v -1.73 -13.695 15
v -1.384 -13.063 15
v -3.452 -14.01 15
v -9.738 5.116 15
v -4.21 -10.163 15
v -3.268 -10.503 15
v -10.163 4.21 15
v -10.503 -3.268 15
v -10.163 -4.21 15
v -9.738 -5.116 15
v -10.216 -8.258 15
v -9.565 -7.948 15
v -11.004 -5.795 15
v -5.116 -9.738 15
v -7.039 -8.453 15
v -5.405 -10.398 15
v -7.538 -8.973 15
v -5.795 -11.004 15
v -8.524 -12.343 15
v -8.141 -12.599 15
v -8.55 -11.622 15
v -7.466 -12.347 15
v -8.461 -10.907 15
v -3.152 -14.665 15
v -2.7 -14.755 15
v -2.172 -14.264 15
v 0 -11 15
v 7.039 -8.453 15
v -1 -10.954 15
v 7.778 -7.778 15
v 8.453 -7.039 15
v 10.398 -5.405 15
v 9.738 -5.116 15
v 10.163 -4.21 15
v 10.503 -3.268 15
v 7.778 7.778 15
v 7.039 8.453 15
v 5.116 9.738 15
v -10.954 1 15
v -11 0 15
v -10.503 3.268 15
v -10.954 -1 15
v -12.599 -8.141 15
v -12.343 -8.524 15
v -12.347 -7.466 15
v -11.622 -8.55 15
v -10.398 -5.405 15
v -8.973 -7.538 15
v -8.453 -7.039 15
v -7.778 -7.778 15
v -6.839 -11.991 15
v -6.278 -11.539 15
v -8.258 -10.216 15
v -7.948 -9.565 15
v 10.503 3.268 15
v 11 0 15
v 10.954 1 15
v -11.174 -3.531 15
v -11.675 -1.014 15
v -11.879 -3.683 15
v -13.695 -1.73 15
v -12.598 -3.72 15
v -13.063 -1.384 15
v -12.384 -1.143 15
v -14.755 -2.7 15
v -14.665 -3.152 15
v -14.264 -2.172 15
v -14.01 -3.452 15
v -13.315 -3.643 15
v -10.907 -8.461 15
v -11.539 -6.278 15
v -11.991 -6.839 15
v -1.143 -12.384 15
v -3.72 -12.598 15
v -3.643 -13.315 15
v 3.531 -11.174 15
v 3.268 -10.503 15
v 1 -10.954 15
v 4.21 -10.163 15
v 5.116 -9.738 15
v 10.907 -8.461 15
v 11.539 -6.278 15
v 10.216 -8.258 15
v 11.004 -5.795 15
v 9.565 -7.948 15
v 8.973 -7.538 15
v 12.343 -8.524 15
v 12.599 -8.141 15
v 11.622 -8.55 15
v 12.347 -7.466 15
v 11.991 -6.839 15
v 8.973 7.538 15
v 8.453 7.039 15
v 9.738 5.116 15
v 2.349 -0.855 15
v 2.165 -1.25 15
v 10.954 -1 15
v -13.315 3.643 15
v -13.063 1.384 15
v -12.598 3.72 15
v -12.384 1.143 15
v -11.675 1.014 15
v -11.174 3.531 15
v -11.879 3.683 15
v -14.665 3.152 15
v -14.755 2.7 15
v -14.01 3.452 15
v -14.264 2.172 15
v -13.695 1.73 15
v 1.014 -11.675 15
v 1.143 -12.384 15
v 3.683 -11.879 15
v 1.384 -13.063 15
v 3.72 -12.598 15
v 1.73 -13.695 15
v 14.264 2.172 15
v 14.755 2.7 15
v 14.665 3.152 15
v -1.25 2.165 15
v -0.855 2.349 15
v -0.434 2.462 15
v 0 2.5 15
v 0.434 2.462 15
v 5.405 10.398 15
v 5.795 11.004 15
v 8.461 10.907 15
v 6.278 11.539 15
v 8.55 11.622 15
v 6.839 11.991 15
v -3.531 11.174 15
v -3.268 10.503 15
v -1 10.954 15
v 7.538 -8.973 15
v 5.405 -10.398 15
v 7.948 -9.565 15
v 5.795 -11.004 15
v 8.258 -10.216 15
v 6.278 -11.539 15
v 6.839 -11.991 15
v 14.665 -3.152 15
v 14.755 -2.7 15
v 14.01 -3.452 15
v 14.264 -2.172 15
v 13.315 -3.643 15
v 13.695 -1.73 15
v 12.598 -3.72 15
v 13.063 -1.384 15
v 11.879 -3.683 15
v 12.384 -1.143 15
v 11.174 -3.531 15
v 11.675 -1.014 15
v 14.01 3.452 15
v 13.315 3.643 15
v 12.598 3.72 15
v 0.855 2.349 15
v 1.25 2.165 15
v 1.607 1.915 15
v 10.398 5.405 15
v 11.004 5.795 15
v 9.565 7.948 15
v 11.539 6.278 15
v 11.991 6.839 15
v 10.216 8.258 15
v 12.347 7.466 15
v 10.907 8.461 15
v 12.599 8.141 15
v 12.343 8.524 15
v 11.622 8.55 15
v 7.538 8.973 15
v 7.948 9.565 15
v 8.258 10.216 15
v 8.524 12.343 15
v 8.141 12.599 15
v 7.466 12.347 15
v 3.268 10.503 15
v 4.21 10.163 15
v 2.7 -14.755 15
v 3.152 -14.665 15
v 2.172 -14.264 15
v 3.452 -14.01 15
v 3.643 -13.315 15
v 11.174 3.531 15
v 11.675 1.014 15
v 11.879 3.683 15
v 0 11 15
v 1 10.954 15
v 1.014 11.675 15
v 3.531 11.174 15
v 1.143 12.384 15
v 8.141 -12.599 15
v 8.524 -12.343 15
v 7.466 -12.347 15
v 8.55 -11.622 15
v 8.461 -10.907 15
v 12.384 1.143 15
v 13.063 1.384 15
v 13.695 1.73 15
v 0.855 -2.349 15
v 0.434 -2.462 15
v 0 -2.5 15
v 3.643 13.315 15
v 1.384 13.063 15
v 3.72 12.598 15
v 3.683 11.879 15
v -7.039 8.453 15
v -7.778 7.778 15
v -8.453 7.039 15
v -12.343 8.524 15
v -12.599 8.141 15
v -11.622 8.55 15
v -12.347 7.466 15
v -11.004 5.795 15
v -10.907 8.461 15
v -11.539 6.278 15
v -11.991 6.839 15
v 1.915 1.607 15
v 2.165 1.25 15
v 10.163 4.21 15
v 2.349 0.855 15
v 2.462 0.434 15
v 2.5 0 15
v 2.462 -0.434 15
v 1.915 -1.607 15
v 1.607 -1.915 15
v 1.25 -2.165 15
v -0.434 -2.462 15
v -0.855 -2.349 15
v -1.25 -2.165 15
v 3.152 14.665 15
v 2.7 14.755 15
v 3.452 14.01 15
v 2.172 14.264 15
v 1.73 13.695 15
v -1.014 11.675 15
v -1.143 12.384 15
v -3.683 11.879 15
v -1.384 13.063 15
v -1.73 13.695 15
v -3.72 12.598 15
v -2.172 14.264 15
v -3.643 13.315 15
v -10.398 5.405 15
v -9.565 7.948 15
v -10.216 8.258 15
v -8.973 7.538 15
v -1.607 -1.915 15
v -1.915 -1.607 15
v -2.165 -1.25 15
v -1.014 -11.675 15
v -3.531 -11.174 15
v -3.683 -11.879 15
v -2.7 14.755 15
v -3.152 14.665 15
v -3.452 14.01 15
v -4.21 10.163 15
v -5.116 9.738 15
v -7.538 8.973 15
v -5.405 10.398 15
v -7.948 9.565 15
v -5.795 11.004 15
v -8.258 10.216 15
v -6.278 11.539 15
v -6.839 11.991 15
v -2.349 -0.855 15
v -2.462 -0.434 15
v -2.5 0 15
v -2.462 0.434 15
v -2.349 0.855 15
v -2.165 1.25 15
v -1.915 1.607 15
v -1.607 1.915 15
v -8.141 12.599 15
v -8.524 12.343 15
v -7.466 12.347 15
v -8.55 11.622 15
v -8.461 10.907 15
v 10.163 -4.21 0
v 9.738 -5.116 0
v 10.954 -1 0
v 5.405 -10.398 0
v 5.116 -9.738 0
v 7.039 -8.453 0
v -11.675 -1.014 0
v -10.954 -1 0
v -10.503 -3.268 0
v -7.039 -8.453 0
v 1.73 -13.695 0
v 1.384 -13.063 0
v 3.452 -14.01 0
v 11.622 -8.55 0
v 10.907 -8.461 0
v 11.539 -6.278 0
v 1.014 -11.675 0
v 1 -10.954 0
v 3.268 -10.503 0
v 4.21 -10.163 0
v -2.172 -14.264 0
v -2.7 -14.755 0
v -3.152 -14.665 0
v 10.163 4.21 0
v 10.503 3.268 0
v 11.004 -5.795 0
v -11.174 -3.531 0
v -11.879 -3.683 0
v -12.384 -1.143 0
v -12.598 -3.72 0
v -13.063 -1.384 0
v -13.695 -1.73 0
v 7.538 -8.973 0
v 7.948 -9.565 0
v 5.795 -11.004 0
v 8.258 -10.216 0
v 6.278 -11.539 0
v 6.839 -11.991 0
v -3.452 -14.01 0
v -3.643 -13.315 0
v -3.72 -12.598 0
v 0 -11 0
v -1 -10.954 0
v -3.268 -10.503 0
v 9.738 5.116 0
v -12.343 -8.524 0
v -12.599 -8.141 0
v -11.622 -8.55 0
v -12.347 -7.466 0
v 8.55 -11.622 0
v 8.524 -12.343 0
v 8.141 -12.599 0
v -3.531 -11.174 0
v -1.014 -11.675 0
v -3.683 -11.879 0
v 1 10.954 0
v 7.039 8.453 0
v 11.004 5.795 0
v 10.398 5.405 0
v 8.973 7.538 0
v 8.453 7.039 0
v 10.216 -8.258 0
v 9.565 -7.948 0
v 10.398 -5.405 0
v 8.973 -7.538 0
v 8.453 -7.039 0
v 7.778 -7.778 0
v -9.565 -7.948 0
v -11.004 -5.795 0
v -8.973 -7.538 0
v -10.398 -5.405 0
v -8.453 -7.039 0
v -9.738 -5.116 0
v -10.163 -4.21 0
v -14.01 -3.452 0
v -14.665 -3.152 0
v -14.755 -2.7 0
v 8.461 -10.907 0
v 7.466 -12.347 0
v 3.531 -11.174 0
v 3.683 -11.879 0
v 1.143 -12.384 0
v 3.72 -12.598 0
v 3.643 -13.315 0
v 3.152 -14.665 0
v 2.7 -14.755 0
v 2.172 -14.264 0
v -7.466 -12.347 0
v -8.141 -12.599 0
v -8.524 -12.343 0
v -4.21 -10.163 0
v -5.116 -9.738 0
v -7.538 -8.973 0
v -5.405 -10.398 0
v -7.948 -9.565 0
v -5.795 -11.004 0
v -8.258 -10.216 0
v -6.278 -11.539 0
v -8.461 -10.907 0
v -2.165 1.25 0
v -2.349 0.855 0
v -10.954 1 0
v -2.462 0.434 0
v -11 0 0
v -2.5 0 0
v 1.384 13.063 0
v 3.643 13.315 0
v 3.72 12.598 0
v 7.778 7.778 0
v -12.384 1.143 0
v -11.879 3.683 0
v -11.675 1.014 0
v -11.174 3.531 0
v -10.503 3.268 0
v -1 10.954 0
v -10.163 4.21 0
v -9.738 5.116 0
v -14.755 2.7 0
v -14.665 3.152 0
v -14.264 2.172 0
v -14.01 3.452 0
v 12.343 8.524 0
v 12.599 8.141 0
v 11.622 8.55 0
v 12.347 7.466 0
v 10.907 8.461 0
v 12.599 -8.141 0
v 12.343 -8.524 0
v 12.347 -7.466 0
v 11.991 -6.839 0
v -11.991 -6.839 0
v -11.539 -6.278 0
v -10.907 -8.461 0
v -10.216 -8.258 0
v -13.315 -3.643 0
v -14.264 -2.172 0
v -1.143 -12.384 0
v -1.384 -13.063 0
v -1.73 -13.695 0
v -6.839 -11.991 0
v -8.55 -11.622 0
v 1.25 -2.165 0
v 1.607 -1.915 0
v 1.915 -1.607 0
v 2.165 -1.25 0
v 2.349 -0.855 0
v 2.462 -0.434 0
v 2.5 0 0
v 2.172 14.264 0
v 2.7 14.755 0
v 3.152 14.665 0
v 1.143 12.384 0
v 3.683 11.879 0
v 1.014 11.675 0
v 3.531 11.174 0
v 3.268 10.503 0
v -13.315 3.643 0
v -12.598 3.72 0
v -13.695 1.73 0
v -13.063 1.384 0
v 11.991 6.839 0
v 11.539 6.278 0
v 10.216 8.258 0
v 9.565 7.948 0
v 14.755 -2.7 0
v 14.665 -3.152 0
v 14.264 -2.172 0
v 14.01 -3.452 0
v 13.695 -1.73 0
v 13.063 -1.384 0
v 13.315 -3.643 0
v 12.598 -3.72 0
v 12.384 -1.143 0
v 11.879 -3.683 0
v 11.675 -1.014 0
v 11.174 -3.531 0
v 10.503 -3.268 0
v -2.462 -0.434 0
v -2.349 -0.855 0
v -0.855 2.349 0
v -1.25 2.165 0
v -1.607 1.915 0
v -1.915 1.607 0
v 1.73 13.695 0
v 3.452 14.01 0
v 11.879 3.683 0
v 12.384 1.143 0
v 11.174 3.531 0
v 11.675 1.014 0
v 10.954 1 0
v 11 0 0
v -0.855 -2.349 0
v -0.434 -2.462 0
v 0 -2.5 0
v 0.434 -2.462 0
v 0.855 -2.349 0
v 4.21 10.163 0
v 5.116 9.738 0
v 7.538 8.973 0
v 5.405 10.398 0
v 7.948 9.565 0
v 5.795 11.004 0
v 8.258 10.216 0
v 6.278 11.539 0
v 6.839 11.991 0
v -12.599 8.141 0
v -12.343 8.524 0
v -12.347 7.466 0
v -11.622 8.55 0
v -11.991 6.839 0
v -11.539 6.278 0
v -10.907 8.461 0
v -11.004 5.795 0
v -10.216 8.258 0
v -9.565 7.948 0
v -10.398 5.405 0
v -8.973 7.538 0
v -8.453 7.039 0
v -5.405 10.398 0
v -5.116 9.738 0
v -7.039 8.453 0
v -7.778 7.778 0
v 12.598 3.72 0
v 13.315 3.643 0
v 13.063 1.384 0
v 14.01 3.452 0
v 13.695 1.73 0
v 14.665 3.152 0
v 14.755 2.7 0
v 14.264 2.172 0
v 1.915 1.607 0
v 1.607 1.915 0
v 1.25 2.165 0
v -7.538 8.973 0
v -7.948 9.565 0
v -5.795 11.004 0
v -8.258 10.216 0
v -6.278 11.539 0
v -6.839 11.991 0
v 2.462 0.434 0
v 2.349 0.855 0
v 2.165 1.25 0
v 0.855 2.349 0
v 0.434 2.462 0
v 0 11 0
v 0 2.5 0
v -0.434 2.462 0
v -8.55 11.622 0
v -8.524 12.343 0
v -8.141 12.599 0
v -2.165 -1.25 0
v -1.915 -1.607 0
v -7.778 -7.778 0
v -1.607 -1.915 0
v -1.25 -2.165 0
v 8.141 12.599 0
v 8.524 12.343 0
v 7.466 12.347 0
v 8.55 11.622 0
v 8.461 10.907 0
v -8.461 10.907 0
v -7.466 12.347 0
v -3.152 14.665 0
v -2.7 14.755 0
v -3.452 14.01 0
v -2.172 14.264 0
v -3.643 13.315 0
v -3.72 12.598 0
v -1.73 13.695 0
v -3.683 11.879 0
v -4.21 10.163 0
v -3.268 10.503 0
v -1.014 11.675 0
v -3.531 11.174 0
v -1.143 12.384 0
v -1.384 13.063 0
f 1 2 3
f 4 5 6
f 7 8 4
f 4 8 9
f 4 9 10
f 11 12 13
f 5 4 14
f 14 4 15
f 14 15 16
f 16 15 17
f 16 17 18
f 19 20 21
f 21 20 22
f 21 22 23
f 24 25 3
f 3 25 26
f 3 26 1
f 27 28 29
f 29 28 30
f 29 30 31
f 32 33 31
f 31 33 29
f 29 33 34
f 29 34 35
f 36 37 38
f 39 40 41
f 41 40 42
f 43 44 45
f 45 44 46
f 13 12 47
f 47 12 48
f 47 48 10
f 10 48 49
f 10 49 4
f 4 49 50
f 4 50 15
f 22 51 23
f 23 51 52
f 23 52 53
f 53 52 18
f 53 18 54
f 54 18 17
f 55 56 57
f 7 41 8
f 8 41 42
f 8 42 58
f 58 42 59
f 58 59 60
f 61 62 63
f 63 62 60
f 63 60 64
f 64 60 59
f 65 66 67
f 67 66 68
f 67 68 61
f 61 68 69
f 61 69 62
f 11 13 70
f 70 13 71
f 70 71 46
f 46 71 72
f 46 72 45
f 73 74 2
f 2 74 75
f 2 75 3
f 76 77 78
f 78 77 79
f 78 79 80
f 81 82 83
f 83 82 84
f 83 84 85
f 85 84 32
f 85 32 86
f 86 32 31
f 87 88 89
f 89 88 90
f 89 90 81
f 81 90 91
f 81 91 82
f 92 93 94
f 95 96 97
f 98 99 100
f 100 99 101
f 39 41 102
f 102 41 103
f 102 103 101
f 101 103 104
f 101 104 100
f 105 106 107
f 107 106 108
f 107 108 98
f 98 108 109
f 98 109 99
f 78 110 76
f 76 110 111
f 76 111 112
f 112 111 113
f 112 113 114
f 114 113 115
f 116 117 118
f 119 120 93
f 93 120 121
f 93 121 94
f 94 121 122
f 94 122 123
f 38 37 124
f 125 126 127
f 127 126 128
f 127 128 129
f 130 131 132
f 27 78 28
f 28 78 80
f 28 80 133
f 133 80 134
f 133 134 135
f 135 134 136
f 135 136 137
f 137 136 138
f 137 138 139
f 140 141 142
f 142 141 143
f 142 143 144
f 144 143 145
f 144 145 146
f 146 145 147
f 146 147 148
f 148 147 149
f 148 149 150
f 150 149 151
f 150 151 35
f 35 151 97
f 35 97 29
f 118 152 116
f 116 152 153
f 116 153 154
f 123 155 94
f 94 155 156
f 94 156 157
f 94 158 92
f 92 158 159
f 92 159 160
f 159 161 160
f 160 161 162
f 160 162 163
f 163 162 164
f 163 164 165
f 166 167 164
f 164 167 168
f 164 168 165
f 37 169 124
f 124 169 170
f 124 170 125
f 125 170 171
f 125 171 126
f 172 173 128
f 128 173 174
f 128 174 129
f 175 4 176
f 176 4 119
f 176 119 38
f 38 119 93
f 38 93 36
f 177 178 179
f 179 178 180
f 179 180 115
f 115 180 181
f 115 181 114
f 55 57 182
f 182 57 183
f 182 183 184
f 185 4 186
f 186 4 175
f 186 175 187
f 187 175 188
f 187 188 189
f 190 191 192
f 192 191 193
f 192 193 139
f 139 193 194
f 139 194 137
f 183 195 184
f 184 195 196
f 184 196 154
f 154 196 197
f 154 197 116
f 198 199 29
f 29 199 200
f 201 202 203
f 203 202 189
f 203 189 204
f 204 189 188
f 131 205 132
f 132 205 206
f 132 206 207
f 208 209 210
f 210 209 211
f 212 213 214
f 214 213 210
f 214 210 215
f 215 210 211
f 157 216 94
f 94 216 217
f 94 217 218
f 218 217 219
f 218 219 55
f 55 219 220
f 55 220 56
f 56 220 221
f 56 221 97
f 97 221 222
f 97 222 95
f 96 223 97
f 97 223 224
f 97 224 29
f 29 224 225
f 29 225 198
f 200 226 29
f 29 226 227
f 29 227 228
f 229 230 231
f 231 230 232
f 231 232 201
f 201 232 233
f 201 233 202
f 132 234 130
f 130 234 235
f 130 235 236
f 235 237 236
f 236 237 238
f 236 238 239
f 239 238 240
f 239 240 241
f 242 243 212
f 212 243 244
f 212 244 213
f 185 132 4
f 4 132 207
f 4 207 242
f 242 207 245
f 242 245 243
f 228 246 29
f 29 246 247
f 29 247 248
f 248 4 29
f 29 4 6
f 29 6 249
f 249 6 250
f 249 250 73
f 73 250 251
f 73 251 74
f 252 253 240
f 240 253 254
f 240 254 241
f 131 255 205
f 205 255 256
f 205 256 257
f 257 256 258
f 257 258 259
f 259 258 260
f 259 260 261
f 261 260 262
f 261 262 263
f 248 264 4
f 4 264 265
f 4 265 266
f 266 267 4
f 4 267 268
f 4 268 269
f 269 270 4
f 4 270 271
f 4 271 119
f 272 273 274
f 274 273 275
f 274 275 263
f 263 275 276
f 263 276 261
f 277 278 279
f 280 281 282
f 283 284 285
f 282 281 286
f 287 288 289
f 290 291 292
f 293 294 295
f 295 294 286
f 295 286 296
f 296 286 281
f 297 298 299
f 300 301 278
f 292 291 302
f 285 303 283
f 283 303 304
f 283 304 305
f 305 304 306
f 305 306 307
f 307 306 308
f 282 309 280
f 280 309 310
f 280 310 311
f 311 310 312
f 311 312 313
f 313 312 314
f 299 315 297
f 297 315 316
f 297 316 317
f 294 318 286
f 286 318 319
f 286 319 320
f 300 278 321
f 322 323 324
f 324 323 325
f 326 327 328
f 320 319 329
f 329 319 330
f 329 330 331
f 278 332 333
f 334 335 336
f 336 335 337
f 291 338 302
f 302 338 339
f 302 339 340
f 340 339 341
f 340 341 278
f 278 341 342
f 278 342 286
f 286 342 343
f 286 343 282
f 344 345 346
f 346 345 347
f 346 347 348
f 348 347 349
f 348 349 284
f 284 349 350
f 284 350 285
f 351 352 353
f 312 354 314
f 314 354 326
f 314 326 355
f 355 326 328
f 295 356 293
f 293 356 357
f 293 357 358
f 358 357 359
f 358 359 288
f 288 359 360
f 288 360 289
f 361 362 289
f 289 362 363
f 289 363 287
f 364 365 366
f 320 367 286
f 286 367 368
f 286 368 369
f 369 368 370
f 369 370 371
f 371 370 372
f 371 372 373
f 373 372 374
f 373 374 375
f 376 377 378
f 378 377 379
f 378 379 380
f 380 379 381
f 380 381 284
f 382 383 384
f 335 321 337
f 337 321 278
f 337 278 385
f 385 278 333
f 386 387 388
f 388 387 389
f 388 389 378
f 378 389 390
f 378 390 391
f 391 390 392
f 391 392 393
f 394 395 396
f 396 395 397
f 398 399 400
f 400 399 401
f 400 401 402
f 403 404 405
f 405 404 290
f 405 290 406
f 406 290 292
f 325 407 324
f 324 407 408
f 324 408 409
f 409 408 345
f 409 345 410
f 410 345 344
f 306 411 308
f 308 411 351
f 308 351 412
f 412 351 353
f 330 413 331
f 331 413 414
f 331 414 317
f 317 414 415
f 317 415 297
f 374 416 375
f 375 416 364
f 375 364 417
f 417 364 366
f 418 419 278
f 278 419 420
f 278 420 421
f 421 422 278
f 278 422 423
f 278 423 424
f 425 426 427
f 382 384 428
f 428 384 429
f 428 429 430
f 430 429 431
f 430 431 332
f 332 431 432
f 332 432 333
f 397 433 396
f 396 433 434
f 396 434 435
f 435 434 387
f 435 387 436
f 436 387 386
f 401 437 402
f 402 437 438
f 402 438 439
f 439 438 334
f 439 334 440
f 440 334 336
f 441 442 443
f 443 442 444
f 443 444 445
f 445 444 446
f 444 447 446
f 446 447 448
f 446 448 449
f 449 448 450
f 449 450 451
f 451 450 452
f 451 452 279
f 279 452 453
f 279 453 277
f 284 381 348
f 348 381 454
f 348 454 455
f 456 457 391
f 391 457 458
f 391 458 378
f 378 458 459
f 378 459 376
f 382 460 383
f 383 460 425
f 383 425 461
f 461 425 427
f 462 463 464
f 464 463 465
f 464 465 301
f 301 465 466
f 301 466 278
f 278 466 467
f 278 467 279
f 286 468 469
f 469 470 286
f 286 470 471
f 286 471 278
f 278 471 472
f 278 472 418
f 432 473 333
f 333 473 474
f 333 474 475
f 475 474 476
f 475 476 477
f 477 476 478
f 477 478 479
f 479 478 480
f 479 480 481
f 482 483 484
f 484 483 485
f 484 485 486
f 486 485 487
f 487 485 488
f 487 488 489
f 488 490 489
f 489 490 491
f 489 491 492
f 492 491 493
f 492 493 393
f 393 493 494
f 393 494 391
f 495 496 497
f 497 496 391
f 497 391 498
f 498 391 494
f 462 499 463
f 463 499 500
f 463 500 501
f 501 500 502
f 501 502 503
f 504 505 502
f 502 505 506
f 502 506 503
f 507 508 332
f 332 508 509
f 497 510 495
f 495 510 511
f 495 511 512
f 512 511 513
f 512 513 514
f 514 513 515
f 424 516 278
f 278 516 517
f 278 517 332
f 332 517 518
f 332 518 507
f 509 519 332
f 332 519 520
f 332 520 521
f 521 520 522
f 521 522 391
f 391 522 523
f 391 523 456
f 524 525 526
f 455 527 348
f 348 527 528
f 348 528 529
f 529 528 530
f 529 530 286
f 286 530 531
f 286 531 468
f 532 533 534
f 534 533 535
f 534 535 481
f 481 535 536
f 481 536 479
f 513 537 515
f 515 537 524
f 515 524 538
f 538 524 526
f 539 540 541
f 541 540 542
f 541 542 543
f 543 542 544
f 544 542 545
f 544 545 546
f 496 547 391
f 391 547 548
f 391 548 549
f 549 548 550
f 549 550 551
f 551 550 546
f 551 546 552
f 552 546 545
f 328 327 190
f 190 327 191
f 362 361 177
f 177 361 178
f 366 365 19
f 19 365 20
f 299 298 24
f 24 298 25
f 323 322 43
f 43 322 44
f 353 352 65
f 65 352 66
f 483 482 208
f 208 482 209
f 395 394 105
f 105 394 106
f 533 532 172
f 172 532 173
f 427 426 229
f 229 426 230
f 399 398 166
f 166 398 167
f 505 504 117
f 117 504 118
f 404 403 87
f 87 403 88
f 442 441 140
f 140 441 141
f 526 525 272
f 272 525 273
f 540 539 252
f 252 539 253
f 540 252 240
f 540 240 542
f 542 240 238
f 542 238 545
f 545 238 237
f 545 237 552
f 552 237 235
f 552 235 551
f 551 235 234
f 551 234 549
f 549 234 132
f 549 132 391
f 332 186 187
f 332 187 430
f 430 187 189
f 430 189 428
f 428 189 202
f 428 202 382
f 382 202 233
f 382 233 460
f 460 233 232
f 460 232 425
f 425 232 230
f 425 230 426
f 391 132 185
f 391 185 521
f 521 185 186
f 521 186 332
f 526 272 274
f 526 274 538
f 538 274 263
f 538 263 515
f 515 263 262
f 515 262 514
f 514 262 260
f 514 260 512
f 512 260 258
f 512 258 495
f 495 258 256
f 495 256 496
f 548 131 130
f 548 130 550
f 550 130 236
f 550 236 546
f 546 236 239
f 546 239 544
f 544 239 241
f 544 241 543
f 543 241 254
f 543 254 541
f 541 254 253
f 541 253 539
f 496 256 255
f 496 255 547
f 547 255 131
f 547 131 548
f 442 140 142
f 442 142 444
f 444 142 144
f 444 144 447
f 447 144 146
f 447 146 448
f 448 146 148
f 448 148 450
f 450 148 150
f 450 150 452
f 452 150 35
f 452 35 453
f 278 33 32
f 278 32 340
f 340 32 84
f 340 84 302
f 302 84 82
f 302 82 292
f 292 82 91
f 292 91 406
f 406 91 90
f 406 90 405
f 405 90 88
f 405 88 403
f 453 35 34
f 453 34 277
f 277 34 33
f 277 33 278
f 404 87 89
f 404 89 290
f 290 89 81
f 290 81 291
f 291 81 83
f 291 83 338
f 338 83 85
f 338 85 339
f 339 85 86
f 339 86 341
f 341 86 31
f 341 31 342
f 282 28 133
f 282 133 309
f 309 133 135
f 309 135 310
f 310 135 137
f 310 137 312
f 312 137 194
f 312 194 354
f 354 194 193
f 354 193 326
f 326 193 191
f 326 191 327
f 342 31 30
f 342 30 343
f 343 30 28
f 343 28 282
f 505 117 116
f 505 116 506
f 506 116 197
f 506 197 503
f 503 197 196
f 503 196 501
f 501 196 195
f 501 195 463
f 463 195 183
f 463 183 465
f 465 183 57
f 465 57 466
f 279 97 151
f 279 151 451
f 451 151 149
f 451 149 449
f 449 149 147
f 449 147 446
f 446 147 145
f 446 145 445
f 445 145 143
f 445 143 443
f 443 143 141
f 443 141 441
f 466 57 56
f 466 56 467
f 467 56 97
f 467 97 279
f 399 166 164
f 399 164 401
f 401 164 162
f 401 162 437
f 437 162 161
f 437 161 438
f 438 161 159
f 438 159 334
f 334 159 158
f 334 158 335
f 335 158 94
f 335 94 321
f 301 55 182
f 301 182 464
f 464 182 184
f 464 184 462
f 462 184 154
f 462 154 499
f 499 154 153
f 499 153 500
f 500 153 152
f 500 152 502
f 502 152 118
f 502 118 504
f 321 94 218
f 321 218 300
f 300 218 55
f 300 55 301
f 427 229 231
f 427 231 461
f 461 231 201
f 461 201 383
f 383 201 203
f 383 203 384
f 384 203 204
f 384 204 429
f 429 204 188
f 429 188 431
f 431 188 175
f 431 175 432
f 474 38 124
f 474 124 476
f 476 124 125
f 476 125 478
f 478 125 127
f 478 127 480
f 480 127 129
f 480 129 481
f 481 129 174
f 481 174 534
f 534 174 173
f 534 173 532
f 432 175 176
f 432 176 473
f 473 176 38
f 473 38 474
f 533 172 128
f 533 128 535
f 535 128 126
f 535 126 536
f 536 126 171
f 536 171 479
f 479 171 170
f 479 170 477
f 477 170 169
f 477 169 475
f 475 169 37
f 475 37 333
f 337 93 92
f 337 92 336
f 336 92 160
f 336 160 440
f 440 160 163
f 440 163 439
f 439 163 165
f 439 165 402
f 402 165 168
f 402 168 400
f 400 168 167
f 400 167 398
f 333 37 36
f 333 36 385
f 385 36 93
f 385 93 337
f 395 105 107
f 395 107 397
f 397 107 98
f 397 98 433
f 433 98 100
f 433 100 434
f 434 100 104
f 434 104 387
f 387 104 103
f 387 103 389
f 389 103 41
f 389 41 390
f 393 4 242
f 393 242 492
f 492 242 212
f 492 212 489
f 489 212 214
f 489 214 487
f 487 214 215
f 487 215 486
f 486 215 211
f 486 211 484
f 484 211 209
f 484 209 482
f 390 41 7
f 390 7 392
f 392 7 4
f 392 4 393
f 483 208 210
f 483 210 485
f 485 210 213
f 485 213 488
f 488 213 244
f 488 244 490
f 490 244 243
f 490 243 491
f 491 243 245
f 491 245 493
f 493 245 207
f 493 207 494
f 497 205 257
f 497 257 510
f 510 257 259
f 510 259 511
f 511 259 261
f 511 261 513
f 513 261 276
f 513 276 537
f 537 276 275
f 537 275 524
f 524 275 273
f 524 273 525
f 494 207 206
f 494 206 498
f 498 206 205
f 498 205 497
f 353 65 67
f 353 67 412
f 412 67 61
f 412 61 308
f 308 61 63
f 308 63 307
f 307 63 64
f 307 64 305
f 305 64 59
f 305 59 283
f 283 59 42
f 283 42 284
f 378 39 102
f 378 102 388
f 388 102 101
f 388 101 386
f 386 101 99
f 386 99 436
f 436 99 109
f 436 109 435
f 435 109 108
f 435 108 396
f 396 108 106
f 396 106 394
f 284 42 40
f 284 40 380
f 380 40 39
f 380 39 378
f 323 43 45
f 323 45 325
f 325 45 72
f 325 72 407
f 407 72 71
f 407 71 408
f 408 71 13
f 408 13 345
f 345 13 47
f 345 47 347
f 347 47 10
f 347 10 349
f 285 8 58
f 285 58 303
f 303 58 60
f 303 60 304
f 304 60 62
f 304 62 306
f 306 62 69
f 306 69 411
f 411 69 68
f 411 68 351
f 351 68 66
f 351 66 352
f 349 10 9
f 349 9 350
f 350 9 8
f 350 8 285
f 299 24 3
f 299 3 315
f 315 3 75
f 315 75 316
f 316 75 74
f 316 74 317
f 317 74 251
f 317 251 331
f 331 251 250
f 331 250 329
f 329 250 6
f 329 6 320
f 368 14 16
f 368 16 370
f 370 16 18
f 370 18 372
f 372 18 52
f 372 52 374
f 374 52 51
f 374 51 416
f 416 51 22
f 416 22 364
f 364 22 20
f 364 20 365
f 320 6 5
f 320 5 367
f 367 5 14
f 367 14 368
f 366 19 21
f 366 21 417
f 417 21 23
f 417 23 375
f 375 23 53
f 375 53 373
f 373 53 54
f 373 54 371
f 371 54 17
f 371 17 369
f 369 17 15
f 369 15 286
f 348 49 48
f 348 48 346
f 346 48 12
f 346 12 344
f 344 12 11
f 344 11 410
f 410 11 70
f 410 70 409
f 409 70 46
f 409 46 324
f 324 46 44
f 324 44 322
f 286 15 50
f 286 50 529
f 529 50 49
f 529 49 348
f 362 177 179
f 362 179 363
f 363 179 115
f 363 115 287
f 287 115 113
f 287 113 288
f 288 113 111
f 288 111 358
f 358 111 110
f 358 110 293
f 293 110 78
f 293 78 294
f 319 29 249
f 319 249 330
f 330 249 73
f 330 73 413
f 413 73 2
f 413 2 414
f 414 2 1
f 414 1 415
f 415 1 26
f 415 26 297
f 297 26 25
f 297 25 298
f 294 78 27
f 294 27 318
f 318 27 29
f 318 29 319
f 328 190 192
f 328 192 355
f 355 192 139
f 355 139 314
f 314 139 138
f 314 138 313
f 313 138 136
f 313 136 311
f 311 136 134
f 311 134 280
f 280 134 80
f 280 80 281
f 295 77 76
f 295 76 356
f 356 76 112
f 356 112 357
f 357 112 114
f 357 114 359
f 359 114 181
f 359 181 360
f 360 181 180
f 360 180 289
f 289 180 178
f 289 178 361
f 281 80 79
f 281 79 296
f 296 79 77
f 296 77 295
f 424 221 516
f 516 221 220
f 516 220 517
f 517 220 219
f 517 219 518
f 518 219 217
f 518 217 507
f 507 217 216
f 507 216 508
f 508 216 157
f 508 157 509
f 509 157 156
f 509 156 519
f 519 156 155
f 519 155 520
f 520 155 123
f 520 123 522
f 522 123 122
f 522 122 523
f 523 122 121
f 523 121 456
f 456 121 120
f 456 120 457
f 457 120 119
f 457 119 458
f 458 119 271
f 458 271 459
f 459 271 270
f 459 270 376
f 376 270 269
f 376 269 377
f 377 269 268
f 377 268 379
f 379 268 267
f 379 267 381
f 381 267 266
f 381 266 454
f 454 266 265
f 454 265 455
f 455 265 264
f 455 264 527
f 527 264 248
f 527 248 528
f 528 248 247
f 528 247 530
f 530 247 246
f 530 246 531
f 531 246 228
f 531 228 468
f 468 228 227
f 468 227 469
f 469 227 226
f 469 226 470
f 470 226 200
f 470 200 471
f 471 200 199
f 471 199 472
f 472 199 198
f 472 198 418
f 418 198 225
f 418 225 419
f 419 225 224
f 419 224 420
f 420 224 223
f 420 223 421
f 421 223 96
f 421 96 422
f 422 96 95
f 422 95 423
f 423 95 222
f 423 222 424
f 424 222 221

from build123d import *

# Parameters (mm, degrees)
SKETCH1_R           = 15
BOSS_EXTRUDE1_DEPTH = 15
CUT_EXTRUDE1_DEPTH  = 16
CIRPATTERN1_COUNT   = 16
SKETCH3_R           = 2.5
CUT_EXTRUDE2_DEPTH  = 16


with BuildPart() as part:
    # Sketch1 → Boss-Extrude1 (new body)
    with BuildSketch(Plane.XY):
        Circle(SKETCH1_R)
    extrude(amount=BOSS_EXTRUDE1_DEPTH)

    # Sketch2 → Cut-Extrude1 (cut, through all)
    with BuildSketch(Plane.XY.offset(15)):
        with BuildLine():
            ThreePointArc((-1, 10.95445115), (0, 11), (1, 10.95445115))
            ThreePointArc((1, 10.95445115), (1.384034944, 13.063153145), (2.7, 14.754999153))
            ThreePointArc((2.7, 14.754999153), (0, 15), (-2.7, 14.754999153))
            ThreePointArc((-2.7, 14.754999153), (-1.384034944, 13.063153145), (-1, 10.95445115))
        make_face()
    cut_extrude1 = extrude(amount=-CUT_EXTRUDE1_DEPTH, mode=Mode.SUBTRACT)

    # CirPattern1: Cut-Extrude1 ×16 about axis
    cirpattern1_axis = Axis((0, 0, 0), (0, 0, 1))
    for i in range(1, CIRPATTERN1_COUNT):
        add(cut_extrude1.rotate(cirpattern1_axis, i * 360 / CIRPATTERN1_COUNT), mode=Mode.SUBTRACT)

    # Sketch3 → Cut-Extrude2 (cut, through all)
    with BuildSketch(Plane.XY.offset(15)):
        Circle(SKETCH3_R)
    extrude(amount=-CUT_EXTRUDE2_DEPTH, mode=Mode.SUBTRACT)


solid = part.part
